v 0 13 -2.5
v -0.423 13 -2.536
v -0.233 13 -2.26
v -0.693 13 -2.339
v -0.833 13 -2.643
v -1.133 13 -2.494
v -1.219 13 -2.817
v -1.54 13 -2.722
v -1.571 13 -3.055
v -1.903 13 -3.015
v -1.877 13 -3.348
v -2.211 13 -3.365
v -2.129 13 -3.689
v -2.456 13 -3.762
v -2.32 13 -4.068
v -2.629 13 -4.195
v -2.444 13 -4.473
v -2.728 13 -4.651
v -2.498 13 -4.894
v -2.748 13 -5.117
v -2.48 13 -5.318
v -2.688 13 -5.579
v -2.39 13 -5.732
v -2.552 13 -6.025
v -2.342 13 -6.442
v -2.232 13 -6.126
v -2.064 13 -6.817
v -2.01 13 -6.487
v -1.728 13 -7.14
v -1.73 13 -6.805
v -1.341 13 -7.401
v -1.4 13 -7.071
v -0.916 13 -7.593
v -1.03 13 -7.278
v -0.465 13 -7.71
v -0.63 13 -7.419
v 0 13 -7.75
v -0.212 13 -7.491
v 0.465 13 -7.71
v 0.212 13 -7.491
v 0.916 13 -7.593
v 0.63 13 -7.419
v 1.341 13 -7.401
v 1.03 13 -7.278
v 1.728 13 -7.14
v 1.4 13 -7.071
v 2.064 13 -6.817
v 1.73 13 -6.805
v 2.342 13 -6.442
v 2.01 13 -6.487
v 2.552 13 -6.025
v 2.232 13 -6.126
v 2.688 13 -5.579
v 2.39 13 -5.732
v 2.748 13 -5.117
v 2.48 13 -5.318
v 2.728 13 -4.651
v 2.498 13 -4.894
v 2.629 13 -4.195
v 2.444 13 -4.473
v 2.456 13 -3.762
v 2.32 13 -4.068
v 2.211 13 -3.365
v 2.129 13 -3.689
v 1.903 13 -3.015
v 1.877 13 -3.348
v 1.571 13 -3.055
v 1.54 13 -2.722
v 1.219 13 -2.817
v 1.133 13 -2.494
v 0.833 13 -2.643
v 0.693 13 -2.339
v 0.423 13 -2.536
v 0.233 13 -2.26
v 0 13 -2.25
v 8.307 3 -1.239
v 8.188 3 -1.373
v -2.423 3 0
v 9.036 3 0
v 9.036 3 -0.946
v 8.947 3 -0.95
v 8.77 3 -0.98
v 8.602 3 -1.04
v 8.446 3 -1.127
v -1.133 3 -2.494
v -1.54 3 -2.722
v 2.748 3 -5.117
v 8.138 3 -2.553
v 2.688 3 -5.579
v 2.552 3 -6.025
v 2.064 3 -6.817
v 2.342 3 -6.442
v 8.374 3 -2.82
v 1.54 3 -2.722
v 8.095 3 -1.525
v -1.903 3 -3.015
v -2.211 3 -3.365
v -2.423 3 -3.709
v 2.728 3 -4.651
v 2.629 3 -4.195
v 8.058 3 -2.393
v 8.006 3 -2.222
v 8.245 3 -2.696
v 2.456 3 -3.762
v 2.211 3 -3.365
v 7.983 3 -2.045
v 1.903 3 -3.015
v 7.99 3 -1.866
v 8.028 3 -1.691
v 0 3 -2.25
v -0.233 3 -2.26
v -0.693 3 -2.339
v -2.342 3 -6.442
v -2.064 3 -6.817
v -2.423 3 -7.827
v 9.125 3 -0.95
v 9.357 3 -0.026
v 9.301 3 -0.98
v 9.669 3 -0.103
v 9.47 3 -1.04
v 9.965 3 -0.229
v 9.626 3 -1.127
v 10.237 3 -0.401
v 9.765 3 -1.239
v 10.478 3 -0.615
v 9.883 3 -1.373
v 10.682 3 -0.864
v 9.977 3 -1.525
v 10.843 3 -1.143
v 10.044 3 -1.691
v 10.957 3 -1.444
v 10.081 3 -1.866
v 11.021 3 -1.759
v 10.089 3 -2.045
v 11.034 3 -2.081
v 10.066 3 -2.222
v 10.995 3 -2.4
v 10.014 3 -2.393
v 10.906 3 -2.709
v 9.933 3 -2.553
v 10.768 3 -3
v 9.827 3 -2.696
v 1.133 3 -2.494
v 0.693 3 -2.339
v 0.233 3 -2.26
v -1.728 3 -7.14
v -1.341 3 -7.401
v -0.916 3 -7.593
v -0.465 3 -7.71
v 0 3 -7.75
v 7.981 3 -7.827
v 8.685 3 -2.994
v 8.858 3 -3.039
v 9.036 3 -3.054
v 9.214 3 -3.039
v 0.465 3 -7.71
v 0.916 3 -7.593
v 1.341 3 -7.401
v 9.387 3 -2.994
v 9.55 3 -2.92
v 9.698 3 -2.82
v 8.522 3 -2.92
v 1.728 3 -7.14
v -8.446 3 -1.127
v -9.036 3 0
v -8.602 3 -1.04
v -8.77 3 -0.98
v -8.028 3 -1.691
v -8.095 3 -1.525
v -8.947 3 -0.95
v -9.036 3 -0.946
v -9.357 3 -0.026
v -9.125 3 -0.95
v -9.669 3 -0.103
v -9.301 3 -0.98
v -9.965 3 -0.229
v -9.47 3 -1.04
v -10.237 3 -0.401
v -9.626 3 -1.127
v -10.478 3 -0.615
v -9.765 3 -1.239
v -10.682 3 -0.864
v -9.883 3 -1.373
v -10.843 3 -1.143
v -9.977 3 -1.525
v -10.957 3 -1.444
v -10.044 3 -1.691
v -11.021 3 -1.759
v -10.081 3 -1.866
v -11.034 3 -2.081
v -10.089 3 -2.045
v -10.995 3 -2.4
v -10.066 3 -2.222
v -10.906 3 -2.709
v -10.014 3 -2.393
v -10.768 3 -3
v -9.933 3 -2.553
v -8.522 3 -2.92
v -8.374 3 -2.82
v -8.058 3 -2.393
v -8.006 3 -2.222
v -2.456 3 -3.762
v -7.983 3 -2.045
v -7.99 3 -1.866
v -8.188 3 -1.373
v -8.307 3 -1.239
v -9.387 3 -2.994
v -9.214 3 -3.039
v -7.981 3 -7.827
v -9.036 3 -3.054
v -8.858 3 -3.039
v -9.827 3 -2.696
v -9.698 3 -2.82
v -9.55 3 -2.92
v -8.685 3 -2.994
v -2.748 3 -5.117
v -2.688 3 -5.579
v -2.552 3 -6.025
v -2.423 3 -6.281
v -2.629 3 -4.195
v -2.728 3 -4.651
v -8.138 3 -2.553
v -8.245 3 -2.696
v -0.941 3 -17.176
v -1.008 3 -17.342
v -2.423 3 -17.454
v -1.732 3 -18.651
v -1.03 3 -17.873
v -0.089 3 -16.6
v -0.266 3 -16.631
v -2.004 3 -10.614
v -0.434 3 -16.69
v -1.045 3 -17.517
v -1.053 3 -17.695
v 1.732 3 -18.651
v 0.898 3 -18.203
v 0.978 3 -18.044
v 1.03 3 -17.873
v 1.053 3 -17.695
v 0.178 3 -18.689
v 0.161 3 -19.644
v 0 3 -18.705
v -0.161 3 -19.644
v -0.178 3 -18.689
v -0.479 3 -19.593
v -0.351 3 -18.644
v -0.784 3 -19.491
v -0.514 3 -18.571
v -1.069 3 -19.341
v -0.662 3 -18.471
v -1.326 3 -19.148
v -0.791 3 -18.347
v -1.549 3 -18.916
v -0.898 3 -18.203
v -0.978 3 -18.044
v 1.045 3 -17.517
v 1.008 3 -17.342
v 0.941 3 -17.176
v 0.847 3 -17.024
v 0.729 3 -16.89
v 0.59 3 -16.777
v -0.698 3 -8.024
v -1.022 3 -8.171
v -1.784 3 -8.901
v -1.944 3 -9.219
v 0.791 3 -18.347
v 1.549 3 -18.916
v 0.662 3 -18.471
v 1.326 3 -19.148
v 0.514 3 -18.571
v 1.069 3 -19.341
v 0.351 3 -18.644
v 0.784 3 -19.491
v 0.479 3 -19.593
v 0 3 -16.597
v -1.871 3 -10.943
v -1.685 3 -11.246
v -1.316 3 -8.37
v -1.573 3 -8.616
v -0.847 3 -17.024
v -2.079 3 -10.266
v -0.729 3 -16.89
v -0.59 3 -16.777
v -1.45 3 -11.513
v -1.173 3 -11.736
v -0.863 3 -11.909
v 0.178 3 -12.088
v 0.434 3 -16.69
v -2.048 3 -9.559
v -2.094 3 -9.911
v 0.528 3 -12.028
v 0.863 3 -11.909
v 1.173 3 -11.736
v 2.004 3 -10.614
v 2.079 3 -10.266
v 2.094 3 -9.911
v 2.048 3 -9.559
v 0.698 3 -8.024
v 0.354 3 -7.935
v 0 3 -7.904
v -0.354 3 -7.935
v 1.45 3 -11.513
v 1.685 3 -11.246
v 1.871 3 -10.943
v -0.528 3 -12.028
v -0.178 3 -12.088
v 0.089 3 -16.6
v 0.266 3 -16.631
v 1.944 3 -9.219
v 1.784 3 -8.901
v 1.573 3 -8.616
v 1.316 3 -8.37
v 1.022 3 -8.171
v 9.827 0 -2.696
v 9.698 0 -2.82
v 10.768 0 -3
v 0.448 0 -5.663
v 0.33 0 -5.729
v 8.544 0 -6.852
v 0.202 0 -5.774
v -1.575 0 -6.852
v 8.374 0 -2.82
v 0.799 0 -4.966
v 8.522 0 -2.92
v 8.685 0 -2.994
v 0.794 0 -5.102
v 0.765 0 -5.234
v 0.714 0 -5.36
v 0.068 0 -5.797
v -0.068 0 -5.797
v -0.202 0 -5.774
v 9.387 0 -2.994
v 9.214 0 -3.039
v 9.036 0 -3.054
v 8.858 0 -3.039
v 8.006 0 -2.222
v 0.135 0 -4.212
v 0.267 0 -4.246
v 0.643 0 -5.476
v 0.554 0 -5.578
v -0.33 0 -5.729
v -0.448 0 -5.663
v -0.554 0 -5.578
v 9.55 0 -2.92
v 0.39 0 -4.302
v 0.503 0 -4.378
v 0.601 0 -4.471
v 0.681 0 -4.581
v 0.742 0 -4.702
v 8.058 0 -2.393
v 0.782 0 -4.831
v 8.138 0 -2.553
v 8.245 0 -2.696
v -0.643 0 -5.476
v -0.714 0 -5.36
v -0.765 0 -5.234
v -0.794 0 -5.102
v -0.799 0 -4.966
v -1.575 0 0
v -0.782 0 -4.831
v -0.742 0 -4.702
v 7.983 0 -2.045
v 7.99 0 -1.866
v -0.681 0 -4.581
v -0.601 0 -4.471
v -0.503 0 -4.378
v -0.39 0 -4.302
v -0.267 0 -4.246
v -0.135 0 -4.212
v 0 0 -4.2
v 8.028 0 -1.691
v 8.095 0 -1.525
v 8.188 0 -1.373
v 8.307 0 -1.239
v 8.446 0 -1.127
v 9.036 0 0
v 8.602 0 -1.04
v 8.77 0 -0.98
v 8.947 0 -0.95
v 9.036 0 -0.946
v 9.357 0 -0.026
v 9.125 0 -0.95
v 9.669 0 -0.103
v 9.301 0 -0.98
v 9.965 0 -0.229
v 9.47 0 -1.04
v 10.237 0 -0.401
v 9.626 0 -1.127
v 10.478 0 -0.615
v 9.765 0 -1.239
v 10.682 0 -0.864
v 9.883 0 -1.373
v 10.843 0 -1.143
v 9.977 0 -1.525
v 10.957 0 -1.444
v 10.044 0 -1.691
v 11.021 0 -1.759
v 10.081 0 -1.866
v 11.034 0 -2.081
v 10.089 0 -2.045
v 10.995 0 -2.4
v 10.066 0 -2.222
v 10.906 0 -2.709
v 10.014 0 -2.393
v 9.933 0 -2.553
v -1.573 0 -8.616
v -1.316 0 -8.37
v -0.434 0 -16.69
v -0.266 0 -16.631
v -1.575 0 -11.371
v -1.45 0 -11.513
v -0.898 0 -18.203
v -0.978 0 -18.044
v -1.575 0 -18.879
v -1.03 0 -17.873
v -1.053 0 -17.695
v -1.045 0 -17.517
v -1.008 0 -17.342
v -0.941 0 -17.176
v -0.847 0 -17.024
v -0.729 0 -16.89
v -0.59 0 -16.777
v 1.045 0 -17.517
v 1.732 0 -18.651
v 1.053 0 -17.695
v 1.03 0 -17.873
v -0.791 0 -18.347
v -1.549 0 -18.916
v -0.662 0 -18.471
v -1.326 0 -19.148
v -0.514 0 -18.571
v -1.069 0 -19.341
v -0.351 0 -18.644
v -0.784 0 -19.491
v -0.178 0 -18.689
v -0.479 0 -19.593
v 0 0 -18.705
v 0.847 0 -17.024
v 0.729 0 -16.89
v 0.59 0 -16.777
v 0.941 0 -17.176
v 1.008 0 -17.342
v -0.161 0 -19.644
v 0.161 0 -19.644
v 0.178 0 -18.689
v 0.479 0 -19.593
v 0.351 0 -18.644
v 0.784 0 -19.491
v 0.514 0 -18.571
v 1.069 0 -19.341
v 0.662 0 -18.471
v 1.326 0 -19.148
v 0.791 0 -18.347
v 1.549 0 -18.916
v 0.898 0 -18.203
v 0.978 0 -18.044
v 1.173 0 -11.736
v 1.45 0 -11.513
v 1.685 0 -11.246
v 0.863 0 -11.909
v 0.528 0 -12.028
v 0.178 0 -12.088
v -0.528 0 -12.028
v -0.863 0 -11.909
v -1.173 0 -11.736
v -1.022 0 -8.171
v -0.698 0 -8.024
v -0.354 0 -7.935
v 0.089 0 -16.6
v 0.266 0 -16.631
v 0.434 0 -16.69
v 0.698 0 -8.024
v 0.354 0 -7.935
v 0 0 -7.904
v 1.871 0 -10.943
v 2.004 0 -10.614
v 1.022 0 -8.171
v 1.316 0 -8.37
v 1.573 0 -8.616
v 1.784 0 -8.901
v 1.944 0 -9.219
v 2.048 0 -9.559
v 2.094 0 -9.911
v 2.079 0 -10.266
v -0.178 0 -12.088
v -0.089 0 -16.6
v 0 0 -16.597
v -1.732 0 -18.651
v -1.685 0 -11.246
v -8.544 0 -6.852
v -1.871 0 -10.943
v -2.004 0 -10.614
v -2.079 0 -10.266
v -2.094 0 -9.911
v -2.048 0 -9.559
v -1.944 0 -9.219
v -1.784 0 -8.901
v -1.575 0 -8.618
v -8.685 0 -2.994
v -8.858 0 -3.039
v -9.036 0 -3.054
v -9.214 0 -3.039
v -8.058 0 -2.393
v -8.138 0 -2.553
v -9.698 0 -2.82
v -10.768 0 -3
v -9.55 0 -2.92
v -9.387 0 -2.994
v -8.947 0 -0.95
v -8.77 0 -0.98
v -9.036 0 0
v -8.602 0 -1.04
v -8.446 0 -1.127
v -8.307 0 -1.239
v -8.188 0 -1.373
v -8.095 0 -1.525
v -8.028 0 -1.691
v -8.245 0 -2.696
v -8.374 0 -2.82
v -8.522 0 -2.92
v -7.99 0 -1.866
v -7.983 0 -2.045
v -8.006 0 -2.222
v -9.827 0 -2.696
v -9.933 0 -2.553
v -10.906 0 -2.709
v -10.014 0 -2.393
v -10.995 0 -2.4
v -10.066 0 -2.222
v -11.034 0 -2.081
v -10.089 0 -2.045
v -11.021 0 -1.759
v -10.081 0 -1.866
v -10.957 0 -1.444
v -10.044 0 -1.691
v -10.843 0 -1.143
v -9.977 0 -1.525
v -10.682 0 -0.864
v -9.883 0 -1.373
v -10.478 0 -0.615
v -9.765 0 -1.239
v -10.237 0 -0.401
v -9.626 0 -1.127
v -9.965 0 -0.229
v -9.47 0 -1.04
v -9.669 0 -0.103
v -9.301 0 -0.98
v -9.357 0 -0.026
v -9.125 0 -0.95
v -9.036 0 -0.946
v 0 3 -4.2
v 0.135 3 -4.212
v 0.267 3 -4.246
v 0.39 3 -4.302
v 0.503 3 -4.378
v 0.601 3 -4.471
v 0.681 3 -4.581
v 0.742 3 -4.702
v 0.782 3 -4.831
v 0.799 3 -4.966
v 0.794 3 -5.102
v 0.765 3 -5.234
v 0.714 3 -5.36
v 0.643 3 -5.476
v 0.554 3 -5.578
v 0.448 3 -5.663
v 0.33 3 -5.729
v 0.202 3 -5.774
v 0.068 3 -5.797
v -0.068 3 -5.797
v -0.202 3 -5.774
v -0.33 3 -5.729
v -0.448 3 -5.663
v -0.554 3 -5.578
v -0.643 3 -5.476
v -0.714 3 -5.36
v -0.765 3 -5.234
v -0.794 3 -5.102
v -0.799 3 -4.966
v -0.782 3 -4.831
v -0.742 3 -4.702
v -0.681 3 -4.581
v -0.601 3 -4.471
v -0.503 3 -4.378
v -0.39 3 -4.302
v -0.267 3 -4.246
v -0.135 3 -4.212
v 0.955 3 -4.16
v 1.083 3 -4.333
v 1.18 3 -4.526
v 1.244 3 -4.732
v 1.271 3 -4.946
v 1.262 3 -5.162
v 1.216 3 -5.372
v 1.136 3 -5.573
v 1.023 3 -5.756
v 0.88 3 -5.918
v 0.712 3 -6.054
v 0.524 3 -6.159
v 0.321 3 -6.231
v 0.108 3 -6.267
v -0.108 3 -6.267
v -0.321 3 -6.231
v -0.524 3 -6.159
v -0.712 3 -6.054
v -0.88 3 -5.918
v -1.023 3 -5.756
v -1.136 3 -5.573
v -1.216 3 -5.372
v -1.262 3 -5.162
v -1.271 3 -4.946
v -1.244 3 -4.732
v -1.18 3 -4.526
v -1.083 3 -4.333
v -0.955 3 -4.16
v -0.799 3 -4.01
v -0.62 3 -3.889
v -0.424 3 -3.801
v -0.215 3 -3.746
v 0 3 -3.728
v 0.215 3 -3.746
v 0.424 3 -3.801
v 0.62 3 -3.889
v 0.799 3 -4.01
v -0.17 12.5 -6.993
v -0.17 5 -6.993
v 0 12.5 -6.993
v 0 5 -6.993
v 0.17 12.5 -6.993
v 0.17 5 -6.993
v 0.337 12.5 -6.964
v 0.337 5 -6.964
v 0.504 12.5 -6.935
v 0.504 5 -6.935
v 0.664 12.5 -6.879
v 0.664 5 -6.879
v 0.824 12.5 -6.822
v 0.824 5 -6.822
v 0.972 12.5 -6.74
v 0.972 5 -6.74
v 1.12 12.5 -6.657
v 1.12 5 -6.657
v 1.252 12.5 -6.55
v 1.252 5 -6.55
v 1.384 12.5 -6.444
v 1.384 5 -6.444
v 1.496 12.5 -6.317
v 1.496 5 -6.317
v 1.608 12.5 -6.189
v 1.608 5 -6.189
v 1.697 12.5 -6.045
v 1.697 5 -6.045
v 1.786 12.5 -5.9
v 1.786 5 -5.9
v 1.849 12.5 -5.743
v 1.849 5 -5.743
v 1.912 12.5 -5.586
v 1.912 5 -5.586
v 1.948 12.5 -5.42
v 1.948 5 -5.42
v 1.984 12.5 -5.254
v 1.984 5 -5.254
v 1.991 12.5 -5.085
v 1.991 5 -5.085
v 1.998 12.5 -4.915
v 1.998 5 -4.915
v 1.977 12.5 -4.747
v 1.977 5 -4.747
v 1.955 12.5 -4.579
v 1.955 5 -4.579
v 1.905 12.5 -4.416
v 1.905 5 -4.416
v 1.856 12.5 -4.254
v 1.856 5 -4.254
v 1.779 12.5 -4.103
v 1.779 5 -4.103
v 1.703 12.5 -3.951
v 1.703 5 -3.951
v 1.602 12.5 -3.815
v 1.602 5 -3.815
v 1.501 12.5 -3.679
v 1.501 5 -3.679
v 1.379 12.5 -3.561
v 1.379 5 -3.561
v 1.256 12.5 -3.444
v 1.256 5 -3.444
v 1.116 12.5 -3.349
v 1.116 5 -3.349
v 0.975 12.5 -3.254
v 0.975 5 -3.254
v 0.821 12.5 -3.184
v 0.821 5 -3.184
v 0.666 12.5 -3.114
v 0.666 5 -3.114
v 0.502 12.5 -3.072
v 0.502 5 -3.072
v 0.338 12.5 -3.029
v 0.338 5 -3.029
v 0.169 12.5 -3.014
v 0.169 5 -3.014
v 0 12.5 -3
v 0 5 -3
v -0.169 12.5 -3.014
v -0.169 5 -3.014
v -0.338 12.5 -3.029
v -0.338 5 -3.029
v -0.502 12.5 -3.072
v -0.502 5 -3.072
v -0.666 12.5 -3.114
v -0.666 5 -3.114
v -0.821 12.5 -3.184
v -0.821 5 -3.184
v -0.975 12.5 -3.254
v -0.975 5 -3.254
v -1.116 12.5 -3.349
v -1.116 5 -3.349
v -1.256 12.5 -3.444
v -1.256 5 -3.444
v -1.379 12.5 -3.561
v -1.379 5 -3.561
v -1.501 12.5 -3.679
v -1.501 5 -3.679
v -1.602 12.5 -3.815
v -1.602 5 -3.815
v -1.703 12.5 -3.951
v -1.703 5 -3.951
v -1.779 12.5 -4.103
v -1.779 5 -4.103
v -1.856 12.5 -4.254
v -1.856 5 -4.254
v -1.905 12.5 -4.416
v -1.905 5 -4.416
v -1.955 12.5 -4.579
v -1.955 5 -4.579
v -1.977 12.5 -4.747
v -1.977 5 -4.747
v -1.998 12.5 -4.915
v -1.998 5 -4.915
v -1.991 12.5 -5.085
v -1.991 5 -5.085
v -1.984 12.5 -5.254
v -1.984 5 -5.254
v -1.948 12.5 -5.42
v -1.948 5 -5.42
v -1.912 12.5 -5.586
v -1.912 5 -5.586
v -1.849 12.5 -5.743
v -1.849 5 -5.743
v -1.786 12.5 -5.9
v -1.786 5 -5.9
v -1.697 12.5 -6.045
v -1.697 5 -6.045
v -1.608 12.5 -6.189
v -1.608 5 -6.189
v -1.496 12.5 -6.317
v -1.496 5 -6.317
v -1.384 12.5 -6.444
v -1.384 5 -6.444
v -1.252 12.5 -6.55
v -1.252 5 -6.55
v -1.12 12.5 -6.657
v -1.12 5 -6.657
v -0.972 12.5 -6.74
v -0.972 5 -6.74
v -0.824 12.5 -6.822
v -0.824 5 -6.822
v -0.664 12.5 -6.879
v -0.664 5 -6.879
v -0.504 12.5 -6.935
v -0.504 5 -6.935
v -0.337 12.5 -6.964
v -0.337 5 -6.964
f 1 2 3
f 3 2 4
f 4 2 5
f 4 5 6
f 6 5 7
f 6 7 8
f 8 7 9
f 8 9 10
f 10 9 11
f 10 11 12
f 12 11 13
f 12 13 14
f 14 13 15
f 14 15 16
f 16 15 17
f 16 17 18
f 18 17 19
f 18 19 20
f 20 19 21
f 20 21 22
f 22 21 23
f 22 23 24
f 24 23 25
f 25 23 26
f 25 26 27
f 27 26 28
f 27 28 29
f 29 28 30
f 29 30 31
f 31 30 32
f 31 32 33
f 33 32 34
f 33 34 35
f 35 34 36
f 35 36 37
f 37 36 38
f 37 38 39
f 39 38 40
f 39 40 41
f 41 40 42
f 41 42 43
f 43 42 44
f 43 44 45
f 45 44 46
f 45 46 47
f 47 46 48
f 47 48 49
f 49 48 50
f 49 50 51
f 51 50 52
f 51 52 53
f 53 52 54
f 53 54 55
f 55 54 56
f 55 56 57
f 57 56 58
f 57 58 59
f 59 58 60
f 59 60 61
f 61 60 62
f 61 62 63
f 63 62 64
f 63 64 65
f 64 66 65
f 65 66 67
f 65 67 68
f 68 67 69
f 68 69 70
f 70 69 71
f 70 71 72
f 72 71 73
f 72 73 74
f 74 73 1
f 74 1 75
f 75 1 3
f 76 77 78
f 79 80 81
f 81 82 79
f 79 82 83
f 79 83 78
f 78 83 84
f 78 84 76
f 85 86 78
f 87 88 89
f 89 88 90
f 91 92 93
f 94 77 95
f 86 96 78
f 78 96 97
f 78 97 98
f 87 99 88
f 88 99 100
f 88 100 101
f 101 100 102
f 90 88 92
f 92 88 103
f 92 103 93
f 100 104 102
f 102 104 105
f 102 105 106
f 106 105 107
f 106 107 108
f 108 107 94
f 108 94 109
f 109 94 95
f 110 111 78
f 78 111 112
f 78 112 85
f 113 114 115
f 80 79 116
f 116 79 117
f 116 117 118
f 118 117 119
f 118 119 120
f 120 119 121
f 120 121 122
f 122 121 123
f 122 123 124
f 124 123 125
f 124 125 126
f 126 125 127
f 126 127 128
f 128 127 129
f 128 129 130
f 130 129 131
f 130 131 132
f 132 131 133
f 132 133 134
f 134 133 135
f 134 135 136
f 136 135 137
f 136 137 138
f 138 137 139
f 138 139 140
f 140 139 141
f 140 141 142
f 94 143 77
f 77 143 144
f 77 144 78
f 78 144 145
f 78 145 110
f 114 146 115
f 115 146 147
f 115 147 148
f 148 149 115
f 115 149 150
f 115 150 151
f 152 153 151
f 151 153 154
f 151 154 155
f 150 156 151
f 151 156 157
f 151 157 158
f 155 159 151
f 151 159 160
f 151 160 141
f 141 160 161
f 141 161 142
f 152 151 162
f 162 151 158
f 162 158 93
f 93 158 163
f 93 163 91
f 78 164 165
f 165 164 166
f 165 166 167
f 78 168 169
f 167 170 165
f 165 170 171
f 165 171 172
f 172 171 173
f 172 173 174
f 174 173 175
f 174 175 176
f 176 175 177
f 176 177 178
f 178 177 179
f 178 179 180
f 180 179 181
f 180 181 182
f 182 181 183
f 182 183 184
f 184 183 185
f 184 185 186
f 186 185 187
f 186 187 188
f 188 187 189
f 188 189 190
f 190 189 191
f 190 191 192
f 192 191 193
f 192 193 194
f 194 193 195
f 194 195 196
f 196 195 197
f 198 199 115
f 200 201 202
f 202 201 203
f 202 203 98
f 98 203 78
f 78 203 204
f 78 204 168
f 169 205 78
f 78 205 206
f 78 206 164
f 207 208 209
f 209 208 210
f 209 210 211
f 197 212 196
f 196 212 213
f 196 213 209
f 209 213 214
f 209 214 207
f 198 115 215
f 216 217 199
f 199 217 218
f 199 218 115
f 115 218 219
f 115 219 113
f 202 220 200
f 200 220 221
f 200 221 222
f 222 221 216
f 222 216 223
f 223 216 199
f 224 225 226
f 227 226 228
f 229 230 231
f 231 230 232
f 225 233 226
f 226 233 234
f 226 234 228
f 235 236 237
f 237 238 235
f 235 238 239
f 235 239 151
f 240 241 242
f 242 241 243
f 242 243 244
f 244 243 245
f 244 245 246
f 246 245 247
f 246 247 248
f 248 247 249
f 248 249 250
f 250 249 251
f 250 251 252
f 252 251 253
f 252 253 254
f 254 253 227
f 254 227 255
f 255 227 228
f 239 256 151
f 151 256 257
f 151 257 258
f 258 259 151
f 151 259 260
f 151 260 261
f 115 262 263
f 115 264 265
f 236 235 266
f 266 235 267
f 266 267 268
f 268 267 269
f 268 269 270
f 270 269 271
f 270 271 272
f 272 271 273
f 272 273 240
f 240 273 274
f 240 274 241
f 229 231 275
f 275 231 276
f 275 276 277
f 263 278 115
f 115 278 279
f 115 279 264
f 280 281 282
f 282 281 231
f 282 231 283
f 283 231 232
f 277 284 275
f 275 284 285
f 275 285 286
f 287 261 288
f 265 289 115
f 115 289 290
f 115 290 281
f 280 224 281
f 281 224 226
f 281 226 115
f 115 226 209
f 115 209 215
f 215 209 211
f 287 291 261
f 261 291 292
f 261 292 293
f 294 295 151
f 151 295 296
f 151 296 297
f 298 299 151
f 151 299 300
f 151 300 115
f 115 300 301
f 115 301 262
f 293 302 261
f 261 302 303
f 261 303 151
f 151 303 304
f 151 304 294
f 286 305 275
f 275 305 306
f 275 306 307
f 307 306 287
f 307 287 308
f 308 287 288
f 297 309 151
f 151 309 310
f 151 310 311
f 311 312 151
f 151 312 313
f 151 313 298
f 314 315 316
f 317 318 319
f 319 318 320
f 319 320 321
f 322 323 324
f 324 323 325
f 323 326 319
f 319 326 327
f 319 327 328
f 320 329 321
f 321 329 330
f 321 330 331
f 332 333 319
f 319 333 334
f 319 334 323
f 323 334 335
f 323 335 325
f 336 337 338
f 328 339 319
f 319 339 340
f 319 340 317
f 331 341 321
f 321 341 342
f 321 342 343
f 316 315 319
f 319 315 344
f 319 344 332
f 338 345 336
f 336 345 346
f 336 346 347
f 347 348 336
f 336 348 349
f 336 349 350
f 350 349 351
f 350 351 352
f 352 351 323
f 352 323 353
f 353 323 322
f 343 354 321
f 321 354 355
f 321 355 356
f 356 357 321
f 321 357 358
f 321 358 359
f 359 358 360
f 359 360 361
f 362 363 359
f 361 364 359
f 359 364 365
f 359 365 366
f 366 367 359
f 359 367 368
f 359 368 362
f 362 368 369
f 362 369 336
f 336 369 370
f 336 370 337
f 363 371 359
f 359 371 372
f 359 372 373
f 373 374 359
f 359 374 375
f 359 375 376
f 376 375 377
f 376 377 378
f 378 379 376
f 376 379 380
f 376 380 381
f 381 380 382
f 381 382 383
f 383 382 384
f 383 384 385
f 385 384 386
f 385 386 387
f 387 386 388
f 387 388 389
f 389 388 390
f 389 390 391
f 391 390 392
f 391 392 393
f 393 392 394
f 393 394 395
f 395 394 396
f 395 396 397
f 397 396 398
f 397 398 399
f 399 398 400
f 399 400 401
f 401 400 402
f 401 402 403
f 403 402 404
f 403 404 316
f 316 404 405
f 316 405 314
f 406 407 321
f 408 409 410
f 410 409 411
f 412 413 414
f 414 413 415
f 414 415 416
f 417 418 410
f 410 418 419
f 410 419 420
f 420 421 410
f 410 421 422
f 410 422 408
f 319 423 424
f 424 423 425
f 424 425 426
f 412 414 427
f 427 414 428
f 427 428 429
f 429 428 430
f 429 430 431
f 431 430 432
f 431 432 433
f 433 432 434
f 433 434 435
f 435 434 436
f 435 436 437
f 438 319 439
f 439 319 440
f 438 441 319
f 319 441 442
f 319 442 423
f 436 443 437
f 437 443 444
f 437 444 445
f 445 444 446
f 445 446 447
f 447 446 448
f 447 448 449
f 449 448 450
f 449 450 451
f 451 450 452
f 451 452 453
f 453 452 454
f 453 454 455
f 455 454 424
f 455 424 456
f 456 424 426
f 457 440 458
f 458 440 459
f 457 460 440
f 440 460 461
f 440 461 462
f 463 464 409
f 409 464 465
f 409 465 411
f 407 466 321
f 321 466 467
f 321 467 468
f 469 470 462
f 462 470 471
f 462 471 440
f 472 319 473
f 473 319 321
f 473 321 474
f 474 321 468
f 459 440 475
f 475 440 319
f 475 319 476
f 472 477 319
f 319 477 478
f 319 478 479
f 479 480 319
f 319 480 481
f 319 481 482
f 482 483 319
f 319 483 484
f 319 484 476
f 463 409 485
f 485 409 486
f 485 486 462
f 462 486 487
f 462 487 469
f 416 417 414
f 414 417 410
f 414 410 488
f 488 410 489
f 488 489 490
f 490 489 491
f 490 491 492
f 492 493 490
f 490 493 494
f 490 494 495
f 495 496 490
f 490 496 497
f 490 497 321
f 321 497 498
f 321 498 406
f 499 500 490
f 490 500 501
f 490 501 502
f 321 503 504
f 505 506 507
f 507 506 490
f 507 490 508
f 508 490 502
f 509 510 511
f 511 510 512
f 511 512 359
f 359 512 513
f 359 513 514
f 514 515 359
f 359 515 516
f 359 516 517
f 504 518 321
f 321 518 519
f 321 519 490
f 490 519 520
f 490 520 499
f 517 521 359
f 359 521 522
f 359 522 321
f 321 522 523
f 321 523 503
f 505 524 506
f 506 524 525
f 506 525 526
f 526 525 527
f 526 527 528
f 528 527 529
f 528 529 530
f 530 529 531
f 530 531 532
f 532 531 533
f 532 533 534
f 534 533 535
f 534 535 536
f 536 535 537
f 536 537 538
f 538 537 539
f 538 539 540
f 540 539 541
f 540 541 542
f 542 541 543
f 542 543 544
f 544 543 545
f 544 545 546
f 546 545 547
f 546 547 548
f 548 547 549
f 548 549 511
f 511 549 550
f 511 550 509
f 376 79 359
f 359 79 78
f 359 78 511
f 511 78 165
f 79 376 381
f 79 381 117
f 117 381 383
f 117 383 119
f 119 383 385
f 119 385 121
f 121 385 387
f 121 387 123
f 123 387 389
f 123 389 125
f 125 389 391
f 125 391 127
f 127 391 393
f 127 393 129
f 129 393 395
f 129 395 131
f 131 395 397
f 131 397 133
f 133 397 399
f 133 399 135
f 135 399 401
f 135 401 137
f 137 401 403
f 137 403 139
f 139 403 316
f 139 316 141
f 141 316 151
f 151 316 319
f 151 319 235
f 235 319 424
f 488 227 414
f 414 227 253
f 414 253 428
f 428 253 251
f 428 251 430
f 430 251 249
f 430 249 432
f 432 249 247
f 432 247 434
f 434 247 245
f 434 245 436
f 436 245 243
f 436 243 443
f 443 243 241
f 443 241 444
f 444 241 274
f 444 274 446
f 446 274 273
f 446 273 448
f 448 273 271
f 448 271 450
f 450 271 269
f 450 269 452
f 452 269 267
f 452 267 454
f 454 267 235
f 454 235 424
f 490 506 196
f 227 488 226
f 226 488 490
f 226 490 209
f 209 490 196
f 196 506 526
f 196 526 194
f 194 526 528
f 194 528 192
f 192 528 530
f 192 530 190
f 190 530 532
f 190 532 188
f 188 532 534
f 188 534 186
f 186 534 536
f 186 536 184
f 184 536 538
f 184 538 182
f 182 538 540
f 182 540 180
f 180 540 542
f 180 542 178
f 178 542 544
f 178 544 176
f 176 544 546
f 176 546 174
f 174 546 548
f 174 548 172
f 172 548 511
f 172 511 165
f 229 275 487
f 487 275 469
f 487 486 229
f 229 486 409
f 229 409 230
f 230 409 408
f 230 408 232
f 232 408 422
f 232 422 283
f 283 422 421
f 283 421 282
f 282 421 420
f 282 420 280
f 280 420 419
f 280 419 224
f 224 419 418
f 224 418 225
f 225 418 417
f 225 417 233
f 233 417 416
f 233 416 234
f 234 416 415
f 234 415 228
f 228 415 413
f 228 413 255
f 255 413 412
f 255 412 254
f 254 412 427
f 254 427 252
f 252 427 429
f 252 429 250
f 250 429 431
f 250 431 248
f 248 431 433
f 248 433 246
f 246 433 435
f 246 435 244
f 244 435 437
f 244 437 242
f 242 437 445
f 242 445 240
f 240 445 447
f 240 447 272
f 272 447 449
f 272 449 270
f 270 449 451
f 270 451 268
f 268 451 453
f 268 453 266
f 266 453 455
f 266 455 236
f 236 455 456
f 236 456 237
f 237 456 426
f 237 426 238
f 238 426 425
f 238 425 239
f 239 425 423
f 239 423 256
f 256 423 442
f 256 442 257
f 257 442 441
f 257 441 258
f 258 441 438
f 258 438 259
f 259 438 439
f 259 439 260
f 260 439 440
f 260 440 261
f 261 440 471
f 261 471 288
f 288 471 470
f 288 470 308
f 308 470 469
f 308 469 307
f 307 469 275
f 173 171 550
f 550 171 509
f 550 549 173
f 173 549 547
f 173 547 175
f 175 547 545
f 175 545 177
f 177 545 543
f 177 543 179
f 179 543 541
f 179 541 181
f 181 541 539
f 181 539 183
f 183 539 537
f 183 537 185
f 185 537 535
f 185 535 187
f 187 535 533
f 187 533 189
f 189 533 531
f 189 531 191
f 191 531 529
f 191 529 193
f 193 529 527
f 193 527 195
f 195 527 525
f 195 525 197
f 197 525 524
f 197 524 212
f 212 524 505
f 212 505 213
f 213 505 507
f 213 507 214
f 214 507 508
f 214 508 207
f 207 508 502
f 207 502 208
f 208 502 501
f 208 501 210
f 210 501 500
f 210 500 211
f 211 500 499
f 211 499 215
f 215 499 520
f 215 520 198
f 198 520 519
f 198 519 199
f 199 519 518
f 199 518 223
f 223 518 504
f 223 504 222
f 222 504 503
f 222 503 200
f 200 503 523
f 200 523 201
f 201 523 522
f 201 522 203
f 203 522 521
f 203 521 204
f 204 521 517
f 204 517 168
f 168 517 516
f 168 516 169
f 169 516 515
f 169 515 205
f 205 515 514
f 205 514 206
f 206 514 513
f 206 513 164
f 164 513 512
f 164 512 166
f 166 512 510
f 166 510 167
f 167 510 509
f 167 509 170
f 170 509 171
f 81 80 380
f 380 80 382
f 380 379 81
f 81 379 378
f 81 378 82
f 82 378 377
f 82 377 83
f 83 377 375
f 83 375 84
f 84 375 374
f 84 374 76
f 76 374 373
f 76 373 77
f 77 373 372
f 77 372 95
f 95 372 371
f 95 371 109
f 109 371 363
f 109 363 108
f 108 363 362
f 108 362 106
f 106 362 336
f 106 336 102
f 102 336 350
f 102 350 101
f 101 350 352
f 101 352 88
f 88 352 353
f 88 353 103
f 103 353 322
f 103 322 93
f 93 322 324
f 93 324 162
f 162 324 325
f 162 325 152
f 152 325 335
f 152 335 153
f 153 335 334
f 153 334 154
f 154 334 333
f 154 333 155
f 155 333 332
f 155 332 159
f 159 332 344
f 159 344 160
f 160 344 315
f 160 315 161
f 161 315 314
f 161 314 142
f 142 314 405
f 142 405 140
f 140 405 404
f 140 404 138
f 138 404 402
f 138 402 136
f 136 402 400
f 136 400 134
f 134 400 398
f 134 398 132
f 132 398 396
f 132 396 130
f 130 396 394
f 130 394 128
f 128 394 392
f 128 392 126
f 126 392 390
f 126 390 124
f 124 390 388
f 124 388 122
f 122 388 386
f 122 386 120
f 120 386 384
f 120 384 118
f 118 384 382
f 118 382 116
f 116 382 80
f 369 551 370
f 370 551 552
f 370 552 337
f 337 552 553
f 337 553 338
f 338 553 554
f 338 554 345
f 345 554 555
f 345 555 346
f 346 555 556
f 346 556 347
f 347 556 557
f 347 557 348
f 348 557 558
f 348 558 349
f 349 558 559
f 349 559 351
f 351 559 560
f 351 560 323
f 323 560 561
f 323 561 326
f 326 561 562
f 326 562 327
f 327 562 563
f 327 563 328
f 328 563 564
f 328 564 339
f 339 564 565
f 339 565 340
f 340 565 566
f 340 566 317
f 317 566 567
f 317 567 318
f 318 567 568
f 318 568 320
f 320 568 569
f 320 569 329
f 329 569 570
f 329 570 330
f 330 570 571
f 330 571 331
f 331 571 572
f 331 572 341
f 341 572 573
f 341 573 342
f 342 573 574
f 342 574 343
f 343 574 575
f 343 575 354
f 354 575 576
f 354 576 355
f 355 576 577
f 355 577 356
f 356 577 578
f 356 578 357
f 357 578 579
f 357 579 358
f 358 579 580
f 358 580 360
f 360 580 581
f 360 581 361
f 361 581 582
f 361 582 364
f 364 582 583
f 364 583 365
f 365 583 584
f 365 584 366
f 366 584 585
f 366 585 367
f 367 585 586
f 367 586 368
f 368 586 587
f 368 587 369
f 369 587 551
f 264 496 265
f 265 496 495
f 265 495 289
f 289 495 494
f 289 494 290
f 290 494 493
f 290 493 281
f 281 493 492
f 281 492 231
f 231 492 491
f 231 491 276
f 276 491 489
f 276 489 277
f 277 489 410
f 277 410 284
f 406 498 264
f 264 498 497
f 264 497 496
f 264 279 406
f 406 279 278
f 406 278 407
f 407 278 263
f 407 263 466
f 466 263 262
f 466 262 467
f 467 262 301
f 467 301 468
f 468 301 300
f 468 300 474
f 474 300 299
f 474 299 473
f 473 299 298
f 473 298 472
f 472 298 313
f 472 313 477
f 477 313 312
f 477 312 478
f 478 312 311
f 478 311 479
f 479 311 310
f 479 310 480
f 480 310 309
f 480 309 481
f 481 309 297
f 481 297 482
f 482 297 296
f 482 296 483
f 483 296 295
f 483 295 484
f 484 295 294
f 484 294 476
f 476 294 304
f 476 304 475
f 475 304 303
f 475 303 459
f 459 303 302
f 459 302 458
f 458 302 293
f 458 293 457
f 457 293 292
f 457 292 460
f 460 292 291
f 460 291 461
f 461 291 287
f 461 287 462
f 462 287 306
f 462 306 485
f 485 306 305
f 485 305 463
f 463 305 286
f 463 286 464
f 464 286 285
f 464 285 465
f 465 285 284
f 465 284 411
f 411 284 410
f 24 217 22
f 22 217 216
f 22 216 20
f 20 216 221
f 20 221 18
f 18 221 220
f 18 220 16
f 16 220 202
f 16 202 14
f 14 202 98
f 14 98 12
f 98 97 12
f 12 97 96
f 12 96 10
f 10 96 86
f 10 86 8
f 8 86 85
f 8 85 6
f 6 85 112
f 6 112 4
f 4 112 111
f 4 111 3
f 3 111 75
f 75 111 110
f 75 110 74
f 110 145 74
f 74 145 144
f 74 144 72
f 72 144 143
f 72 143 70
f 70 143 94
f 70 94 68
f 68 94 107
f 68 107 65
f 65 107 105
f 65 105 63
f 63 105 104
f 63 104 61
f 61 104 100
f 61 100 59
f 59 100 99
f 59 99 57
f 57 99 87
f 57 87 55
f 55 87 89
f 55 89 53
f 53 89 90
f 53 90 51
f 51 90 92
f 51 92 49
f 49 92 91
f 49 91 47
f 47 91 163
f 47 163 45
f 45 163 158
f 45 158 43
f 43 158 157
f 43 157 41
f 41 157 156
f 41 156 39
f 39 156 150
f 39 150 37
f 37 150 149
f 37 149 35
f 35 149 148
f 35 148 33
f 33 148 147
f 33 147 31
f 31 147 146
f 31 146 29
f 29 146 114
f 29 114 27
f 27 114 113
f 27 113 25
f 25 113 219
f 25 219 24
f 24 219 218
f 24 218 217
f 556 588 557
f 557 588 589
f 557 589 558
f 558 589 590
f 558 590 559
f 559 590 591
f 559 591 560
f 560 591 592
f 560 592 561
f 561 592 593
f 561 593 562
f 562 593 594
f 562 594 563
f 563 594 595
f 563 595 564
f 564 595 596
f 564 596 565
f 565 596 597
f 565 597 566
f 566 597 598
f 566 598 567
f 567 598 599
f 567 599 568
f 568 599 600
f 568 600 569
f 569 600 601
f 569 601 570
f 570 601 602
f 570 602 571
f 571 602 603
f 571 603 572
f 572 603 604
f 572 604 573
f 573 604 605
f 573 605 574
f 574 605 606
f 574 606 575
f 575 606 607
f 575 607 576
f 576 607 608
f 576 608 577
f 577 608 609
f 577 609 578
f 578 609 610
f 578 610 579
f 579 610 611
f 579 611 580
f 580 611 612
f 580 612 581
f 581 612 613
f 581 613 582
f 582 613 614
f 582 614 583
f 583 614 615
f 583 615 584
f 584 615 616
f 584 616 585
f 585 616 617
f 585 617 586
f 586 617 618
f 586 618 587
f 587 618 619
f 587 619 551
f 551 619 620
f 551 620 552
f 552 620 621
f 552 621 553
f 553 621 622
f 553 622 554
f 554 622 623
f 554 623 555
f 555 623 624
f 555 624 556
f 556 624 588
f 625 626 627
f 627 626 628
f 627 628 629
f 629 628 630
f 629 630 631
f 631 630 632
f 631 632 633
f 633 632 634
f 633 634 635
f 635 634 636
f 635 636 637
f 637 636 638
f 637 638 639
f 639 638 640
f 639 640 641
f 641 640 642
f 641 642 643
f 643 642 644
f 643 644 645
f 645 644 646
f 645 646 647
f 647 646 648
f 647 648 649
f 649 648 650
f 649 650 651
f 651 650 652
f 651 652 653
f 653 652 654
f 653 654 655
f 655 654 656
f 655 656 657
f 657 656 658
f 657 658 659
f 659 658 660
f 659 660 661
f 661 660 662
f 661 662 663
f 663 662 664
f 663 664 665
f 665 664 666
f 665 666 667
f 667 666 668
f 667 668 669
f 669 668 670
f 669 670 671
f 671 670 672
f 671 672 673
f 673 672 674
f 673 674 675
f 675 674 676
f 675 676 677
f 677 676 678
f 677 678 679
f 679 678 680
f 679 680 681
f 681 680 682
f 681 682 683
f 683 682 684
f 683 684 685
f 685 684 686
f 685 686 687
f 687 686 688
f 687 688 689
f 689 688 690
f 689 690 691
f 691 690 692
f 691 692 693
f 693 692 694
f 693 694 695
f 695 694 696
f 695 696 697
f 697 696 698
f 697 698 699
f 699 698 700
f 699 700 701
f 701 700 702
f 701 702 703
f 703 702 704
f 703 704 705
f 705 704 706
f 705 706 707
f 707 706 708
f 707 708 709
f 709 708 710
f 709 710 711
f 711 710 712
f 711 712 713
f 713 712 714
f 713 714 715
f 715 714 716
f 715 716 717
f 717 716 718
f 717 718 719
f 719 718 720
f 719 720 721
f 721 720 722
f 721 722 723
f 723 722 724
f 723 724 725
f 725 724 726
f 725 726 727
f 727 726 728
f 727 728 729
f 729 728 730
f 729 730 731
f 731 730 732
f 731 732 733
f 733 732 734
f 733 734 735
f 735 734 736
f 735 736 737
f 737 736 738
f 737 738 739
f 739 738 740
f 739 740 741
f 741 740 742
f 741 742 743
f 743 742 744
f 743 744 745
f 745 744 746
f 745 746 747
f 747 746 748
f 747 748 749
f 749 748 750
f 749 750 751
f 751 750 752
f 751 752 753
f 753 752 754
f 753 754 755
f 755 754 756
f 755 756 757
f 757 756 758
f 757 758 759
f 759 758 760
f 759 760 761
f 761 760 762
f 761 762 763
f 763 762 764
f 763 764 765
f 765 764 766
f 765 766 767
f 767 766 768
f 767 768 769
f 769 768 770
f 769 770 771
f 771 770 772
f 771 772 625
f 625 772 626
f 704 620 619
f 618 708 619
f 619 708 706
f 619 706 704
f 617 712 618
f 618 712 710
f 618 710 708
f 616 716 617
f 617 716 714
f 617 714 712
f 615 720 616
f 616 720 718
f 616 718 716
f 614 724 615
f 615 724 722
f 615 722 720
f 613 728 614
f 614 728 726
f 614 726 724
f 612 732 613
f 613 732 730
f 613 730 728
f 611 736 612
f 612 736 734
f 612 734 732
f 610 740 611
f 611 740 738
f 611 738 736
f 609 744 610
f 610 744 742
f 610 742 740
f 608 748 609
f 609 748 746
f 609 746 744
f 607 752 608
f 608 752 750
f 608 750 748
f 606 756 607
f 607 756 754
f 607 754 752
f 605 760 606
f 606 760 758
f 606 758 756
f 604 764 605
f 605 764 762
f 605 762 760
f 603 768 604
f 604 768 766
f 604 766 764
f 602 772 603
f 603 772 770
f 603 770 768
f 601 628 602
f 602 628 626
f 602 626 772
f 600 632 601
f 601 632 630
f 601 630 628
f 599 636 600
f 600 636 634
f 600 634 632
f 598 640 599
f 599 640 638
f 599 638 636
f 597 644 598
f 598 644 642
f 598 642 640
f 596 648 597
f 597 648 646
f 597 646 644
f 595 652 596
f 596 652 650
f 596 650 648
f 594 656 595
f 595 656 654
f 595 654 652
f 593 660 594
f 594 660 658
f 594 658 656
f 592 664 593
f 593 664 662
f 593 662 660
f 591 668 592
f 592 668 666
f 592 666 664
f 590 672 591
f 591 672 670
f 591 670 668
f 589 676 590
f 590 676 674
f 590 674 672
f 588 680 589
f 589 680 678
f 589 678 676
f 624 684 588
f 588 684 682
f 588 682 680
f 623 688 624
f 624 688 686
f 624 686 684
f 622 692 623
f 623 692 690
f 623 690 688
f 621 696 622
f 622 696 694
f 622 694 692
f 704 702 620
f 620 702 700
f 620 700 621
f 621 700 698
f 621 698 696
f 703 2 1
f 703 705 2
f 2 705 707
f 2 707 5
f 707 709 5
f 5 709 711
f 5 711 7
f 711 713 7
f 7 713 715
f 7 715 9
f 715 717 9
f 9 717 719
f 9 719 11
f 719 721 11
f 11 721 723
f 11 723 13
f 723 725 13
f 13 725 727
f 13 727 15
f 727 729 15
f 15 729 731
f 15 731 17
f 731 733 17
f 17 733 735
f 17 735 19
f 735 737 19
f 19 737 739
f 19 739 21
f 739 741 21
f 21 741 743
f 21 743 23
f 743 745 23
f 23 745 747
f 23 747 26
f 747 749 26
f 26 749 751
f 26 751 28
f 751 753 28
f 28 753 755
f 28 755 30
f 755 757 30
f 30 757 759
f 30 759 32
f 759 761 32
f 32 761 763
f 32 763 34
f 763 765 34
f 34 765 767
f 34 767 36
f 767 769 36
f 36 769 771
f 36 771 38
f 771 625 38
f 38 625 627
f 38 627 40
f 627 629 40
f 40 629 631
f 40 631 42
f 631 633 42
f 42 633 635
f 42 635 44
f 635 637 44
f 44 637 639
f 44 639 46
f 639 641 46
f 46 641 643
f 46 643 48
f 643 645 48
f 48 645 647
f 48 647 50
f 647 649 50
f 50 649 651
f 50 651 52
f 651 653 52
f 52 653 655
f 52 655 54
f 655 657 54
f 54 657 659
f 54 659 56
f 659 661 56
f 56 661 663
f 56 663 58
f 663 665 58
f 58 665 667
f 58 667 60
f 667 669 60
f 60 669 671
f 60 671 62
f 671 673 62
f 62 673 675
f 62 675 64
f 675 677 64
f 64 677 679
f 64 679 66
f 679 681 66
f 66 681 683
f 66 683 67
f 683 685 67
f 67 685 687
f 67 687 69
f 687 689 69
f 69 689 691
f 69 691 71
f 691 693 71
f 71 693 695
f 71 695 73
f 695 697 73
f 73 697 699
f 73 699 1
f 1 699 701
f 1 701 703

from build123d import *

# Parameters (mm, degrees)
SKETCH1_R           = 1.054
BOSS_EXTRUDE1_DEPTH = 3
SKETCH2_R           = 0.8
SKETCH2_R_2         = 2.0955
CUT_EXTRUDE1_DEPTH  = 23.736281859
SKETCH3_R           = 2.75
BOSS_EXTRUDE2_DEPTH = 10
CUT_EXTRUDE2_REACH  = 26.656
SKETCH4_R           = 2
CHAMFER1_SIZE       = 2
CHAMFER1_SIZE2      = 0.727940469
CHAMFER2_SIZE       = 0.5


with BuildPart() as part:
    # Sketch1 → Boss-Extrude1 (new body)
    with BuildSketch(Plane(origin=(0, 0, 0), x_dir=(1, 0, 0), z_dir=(0, 1, 0))):
        with BuildLine():
            Line((0, 0), (9.035898385, 0))
            ThreePointArc((9.035898385, 0), (10.767949192, 1), (10.767949192, 3))
            Line((10.767949192, 3), (1.732050808, 18.650635095))
            ThreePointArc((1.732050808, 18.650635095), (0, 19.650635095), (-1.732050808, 18.650635095))
            Line((-1.732050808, 18.650635095), (-10.767949192, 3))
            ThreePointArc((-10.767949192, 3), (-10.767949192, 1), (-9.035898385, 0))
            Line((-9.035898385, 0), (0, 0))
        make_face()
        with Locations(Location((0, 17.650635095, 0), (0, 0, 270))):
            Circle(SKETCH1_R, mode=Mode.SUBTRACT)
        with Locations(Location((-9.035898385, 2, 0), (0, 0, 270))):
            Circle(SKETCH1_R, mode=Mode.SUBTRACT)
        with Locations(Location((9.035898385, 2, 0), (0, 0, 270))):
            Circle(SKETCH1_R, mode=Mode.SUBTRACT)
    extrude(amount=BOSS_EXTRUDE1_DEPTH)

    # Sketch2 → Cut-Extrude1 (cut, through all)
    with BuildSketch(Plane(origin=(0, 3, 0), x_dir=(1, 0, 0), z_dir=(0, 1, 0))):
        with Locations(Location((0, 5, 0), (0, 0, 270))):
            Circle(SKETCH2_R)
        with Locations(Location((0, 10, 0), (0, 0, 270))):
            Circle(SKETCH2_R_2)
    extrude(amount=-CUT_EXTRUDE1_DEPTH, mode=Mode.SUBTRACT)

    # Sketch3 → Boss-Extrude2 (add)
    with BuildSketch(Plane(origin=(0, 3, 0), x_dir=(1, 0, 0), z_dir=(0, 1, 0))):
        with Locations(Location((0, 5, 0), (0, 0, 270))):
            Circle(SKETCH3_R)
    extrude(amount=BOSS_EXTRUDE2_DEPTH)

    # Sketch4 → Cut-Extrude2 (cut, up to next)
    with BuildSketch(Plane(origin=(0, 3, 0), x_dir=(1, 0, 0), z_dir=(0, 1, 0)), mode=Mode.PRIVATE) as cut_extrude2_sk1:
        with Locations(Location((0, 5, 0), (0, 0, 270))):
            Circle(SKETCH4_R)
    cut_extrude2_tool1 = extrude(cut_extrude2_sk1.sketch, amount=CUT_EXTRUDE2_REACH, mode=Mode.PRIVATE) & part.part
    add(cut_extrude2_tool1.solids().sort_by_distance((0, 3, -5))[0], mode=Mode.SUBTRACT)

    # Chamfer1
    chamfer1_edges = [part.edges().sort_by_distance(p)[0] for p in [
        (0, 3, -7),
    ]]
    chamfer1_side = [part.faces().sort_by_distance(p)[0] for p in [
        (0, 8, -7),
    ]]
    chamfer(chamfer1_edges, length=CHAMFER1_SIZE, length2=CHAMFER1_SIZE2, reference=chamfer1_side[0])

    # Chamfer2
    chamfer2_edges = [part.edges().sort_by_distance(p)[0] for p in [
        (0, 13, -7),
    ]]
    chamfer(chamfer2_edges, length=CHAMFER2_SIZE)


solid = part.part
